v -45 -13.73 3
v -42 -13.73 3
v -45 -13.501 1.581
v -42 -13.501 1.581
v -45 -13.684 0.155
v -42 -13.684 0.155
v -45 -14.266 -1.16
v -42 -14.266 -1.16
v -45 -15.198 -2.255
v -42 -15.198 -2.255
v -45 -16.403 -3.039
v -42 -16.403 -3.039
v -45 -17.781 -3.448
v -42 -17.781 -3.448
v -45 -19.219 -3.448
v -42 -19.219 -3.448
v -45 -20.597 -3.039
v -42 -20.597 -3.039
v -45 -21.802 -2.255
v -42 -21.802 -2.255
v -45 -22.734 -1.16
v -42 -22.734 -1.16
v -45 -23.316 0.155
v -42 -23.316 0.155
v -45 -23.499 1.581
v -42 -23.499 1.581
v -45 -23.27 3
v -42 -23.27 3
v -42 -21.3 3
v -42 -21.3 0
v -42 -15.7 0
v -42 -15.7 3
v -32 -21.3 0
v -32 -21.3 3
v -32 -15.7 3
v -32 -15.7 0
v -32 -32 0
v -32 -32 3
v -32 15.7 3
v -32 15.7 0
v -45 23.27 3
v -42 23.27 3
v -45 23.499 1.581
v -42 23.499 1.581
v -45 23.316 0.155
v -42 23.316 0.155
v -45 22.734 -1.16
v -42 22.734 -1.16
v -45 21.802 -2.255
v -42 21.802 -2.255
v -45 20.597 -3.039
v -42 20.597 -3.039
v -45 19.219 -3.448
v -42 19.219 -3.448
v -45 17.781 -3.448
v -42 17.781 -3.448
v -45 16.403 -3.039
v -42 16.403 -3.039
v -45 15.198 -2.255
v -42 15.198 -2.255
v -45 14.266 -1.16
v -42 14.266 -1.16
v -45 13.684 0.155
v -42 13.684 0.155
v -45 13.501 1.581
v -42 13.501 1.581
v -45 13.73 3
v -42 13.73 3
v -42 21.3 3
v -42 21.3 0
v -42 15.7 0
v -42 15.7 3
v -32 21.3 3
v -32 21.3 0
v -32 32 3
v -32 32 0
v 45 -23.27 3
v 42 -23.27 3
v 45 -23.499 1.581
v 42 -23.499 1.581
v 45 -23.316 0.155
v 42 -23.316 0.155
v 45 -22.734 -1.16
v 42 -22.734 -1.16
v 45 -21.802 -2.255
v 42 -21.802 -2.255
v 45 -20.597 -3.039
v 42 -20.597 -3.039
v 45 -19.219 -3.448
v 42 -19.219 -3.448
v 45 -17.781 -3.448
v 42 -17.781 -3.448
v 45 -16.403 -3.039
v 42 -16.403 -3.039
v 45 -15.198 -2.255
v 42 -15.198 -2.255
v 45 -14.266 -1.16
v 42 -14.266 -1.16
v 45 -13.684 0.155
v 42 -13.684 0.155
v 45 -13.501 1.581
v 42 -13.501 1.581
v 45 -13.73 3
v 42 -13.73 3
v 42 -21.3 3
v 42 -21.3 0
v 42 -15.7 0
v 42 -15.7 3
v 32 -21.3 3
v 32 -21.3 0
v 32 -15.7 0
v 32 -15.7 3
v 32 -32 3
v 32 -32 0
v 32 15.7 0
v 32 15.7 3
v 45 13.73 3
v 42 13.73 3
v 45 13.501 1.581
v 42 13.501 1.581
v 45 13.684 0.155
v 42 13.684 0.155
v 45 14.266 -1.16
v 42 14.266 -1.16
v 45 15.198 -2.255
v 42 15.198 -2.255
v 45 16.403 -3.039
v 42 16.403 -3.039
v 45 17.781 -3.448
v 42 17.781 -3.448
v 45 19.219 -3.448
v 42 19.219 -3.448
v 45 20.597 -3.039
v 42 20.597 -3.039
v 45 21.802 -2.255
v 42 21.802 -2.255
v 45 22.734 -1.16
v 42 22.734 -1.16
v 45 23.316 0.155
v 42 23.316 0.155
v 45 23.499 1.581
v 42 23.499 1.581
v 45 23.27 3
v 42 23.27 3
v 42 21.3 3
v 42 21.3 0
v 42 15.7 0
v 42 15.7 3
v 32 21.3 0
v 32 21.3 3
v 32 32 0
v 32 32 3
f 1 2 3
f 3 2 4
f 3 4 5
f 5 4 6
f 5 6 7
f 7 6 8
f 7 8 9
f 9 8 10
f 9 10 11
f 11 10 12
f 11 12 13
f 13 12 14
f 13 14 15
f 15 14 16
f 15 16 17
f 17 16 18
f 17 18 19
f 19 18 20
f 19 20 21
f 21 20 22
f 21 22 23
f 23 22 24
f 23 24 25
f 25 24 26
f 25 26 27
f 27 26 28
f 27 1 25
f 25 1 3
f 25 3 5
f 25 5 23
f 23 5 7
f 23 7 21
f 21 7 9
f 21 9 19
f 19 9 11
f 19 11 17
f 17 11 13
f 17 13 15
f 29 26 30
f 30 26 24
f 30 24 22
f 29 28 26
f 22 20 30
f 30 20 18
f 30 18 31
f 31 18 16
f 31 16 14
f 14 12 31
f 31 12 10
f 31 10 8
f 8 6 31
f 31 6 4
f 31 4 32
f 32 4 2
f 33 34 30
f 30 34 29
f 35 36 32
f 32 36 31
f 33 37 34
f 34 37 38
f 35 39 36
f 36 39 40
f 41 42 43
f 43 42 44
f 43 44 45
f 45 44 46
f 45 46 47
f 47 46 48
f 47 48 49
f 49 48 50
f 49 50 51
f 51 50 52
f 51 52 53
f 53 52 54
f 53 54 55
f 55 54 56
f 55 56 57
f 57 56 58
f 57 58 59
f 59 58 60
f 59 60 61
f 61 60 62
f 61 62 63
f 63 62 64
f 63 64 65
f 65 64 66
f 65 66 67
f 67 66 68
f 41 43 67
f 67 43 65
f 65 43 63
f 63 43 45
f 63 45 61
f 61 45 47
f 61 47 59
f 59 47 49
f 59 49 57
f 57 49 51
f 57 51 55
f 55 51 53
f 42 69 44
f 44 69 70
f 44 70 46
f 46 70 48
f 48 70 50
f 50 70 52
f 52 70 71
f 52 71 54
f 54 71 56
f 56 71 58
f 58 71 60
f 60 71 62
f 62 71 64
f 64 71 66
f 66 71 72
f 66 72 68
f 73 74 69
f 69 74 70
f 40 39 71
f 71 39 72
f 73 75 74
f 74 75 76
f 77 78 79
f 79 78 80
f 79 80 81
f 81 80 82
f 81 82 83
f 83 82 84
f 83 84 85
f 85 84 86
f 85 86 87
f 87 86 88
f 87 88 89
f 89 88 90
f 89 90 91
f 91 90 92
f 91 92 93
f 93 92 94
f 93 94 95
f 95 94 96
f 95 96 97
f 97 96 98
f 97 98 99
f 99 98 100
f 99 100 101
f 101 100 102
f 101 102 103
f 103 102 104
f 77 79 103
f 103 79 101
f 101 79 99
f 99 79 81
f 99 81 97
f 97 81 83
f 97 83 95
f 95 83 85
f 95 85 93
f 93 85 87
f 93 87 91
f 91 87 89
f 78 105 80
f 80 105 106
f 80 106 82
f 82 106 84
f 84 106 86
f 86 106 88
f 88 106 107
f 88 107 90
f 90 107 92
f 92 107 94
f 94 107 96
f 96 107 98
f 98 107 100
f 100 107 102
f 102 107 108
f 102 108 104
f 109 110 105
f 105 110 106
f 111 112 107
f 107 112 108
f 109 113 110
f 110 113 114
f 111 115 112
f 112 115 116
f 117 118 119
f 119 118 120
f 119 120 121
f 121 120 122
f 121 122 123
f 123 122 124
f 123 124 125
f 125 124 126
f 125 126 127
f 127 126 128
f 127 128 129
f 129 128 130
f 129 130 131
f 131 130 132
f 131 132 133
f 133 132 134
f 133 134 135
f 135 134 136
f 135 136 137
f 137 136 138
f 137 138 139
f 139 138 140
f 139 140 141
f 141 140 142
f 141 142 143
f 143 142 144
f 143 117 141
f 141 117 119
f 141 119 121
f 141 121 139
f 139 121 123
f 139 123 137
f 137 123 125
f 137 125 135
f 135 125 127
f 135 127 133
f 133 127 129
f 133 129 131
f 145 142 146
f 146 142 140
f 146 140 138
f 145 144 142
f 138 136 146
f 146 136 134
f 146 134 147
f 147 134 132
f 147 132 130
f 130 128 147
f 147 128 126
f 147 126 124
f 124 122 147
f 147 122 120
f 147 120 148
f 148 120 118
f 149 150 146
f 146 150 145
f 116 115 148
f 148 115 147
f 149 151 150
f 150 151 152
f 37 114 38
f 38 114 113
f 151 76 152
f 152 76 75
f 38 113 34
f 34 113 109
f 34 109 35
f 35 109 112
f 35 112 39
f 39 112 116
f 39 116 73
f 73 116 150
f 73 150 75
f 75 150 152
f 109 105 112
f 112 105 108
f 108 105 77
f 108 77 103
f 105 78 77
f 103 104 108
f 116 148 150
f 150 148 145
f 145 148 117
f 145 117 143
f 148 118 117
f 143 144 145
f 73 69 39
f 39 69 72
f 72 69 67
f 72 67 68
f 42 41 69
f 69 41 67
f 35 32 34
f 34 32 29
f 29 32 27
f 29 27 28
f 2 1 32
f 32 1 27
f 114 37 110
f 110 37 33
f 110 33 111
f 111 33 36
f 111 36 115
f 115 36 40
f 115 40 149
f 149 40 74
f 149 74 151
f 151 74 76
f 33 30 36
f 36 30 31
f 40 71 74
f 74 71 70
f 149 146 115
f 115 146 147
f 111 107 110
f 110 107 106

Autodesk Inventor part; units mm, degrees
ref_plane "YZ Plane" through (0, 0, 0) normal (1, 0, 0) x (0, 1, 0)
ref_plane "XZ Plane" through (0, 0, 0) normal (0, 1, 0) x (-1, 0, 0)
ref_plane "XY Plane" through (0, 0, 0) normal (0, 0, 1) x (1, 0, 0)
sketch "Boceto1" plane through (0, 0, 0) normal (0, 0, 1) x (1, 0, 0)
  line L0 (-32, -32) -> (32, -32)
  line L1 (32, -32) -> (32, 32)
  line L2 (32, 32) -> (-32, 32)
  line L3 (-32, 32) -> (-32, -32)
  line L4 (-32, -32) -> (32, 32) construction
  line L5 (32, -32) -> (-32, 32) construction
  point P0 (0, 0)
  dimension "d0" = 64
  dimension "d1" = 64
extrude "Extrusión1" add sketch "Boceto1" along normal blind 3
sketch "Boceto2" plane through (32, -32, 0) normal (1, 0, 0) x (0, 0, -1)
  line L0 (-74, 16.5) -> (1, 16.5) projected
  arc A0 (1, 10.5) -> (1, 16.5) centre (1, 13.5) ccw projected
  line L1 (1, 10.5) -> (-74, 10.5) projected
  line L2 (-74, -4.5) -> (-74, 10.5) projected
  line L3 (7, -4.5) -> (-74, -4.5) projected
  line L4 (7, -4.5) -> (7, 68.5) projected
  line L5 (7, 68.5) -> (-74, 68.5) projected
  line L6 (-74, 53.5) -> (-74, 68.5) projected
  line L7 (-74, 53.5) -> (1, 53.5) projected
  arc A1 (1, 47.5) -> (1, 53.5) centre (1, 50.5) ccw projected
  line L8 (1, 47.5) -> (-74, 47.5) projected
  line L9 (-74, 16.5) -> (-74, 47.5) projected
  line L10 (0, 0) -> (0, 64) projected
  line L11 (0, 64) -> (-3, 64) projected
  line L12 (-3, 0) -> (-3, 64) projected
  line L13 (0, 0) -> (-3, 0) projected
  line L14 (0, 47.5) -> (-3, 47.5)
  line L15 (-3, 47.5) -> (-3, 53.5)
  line L16 (-3, 53.5) -> (0, 53.5)
  line L17 (0, 53.5) -> (0, 47.5)
  line L18 (0, 47.7) -> (-3, 47.7)
  line L19 (-2.8, 47.7) -> (-2.8, 53.3)
  line L20 (-3, 53.3) -> (0, 53.3)
  line L21 (-0.2, 53.3) -> (-0.2, 47.7)
  point P0 (0, 32)
  dimension "d4" = 0.2
extrude "Extrusión2" add sketch "Boceto2" along normal blind 10 contours L12 L20 L19 L18 | L18 L21 L20 L10 | L19 L20 L21 L18
sketch "Boceto3" plane through (42, -32, 0) normal (1, 0, 0) x (0, 0, -1)
  line L0 (-3, 53.3) -> (-3, 47.7) projected
  line L1 (-3, 47.7) -> (0, 47.7) projected
  line L2 (0, 47.7) -> (0, 53.3) projected
  line L3 (0, 53.3) -> (-3, 53.3) projected
  line L4 (0, 47.7) -> (-3, 53.3)
  circle A0 centre (-1.5, 50.5) radius 5
  line L5 (-3, 53.3) -> (-3, 55.2697)
  line L6 (-3, 47.7) -> (0, 47.7)
  line L7 (0, 47.7) -> (0, 53.3)
  line L8 (0, 53.3) -> (-3, 53.3)
  line L9 (-3, 53.3) -> (-3, 47.7)
  line L10 (-3, 47.7) -> (-3, 42)
  point P0 (0, 32)
  point P1 (-3, 45.7303)
  dimension "d7" = 10
extrude "Extrusión3" add sketch "Boceto3" along normal blind 3 contours L4 L1 L0 | L5 A0 L10 L1 L2 L3 | L3 L2 L4
ref_plane "Plano de trabajo1" through (0, -32, 3) normal (1, 0, 0) x (0, 0, -1)
ref_plane "Plano de trabajo2" through (-32, 0, 0) normal (0, 1, 0) x (1, 0, 0)
mirror "Simetría1" about plane through (-32, 0, 0) normal (0, 1, 0) of "Extrusión2", "Extrusión3"
mirror "Simetría2" about plane through (0, -32, 3) normal (1, 0, 0) of "Extrusión2", "Simetría1", "Extrusión3"
properties part number "Parte deslizante"
